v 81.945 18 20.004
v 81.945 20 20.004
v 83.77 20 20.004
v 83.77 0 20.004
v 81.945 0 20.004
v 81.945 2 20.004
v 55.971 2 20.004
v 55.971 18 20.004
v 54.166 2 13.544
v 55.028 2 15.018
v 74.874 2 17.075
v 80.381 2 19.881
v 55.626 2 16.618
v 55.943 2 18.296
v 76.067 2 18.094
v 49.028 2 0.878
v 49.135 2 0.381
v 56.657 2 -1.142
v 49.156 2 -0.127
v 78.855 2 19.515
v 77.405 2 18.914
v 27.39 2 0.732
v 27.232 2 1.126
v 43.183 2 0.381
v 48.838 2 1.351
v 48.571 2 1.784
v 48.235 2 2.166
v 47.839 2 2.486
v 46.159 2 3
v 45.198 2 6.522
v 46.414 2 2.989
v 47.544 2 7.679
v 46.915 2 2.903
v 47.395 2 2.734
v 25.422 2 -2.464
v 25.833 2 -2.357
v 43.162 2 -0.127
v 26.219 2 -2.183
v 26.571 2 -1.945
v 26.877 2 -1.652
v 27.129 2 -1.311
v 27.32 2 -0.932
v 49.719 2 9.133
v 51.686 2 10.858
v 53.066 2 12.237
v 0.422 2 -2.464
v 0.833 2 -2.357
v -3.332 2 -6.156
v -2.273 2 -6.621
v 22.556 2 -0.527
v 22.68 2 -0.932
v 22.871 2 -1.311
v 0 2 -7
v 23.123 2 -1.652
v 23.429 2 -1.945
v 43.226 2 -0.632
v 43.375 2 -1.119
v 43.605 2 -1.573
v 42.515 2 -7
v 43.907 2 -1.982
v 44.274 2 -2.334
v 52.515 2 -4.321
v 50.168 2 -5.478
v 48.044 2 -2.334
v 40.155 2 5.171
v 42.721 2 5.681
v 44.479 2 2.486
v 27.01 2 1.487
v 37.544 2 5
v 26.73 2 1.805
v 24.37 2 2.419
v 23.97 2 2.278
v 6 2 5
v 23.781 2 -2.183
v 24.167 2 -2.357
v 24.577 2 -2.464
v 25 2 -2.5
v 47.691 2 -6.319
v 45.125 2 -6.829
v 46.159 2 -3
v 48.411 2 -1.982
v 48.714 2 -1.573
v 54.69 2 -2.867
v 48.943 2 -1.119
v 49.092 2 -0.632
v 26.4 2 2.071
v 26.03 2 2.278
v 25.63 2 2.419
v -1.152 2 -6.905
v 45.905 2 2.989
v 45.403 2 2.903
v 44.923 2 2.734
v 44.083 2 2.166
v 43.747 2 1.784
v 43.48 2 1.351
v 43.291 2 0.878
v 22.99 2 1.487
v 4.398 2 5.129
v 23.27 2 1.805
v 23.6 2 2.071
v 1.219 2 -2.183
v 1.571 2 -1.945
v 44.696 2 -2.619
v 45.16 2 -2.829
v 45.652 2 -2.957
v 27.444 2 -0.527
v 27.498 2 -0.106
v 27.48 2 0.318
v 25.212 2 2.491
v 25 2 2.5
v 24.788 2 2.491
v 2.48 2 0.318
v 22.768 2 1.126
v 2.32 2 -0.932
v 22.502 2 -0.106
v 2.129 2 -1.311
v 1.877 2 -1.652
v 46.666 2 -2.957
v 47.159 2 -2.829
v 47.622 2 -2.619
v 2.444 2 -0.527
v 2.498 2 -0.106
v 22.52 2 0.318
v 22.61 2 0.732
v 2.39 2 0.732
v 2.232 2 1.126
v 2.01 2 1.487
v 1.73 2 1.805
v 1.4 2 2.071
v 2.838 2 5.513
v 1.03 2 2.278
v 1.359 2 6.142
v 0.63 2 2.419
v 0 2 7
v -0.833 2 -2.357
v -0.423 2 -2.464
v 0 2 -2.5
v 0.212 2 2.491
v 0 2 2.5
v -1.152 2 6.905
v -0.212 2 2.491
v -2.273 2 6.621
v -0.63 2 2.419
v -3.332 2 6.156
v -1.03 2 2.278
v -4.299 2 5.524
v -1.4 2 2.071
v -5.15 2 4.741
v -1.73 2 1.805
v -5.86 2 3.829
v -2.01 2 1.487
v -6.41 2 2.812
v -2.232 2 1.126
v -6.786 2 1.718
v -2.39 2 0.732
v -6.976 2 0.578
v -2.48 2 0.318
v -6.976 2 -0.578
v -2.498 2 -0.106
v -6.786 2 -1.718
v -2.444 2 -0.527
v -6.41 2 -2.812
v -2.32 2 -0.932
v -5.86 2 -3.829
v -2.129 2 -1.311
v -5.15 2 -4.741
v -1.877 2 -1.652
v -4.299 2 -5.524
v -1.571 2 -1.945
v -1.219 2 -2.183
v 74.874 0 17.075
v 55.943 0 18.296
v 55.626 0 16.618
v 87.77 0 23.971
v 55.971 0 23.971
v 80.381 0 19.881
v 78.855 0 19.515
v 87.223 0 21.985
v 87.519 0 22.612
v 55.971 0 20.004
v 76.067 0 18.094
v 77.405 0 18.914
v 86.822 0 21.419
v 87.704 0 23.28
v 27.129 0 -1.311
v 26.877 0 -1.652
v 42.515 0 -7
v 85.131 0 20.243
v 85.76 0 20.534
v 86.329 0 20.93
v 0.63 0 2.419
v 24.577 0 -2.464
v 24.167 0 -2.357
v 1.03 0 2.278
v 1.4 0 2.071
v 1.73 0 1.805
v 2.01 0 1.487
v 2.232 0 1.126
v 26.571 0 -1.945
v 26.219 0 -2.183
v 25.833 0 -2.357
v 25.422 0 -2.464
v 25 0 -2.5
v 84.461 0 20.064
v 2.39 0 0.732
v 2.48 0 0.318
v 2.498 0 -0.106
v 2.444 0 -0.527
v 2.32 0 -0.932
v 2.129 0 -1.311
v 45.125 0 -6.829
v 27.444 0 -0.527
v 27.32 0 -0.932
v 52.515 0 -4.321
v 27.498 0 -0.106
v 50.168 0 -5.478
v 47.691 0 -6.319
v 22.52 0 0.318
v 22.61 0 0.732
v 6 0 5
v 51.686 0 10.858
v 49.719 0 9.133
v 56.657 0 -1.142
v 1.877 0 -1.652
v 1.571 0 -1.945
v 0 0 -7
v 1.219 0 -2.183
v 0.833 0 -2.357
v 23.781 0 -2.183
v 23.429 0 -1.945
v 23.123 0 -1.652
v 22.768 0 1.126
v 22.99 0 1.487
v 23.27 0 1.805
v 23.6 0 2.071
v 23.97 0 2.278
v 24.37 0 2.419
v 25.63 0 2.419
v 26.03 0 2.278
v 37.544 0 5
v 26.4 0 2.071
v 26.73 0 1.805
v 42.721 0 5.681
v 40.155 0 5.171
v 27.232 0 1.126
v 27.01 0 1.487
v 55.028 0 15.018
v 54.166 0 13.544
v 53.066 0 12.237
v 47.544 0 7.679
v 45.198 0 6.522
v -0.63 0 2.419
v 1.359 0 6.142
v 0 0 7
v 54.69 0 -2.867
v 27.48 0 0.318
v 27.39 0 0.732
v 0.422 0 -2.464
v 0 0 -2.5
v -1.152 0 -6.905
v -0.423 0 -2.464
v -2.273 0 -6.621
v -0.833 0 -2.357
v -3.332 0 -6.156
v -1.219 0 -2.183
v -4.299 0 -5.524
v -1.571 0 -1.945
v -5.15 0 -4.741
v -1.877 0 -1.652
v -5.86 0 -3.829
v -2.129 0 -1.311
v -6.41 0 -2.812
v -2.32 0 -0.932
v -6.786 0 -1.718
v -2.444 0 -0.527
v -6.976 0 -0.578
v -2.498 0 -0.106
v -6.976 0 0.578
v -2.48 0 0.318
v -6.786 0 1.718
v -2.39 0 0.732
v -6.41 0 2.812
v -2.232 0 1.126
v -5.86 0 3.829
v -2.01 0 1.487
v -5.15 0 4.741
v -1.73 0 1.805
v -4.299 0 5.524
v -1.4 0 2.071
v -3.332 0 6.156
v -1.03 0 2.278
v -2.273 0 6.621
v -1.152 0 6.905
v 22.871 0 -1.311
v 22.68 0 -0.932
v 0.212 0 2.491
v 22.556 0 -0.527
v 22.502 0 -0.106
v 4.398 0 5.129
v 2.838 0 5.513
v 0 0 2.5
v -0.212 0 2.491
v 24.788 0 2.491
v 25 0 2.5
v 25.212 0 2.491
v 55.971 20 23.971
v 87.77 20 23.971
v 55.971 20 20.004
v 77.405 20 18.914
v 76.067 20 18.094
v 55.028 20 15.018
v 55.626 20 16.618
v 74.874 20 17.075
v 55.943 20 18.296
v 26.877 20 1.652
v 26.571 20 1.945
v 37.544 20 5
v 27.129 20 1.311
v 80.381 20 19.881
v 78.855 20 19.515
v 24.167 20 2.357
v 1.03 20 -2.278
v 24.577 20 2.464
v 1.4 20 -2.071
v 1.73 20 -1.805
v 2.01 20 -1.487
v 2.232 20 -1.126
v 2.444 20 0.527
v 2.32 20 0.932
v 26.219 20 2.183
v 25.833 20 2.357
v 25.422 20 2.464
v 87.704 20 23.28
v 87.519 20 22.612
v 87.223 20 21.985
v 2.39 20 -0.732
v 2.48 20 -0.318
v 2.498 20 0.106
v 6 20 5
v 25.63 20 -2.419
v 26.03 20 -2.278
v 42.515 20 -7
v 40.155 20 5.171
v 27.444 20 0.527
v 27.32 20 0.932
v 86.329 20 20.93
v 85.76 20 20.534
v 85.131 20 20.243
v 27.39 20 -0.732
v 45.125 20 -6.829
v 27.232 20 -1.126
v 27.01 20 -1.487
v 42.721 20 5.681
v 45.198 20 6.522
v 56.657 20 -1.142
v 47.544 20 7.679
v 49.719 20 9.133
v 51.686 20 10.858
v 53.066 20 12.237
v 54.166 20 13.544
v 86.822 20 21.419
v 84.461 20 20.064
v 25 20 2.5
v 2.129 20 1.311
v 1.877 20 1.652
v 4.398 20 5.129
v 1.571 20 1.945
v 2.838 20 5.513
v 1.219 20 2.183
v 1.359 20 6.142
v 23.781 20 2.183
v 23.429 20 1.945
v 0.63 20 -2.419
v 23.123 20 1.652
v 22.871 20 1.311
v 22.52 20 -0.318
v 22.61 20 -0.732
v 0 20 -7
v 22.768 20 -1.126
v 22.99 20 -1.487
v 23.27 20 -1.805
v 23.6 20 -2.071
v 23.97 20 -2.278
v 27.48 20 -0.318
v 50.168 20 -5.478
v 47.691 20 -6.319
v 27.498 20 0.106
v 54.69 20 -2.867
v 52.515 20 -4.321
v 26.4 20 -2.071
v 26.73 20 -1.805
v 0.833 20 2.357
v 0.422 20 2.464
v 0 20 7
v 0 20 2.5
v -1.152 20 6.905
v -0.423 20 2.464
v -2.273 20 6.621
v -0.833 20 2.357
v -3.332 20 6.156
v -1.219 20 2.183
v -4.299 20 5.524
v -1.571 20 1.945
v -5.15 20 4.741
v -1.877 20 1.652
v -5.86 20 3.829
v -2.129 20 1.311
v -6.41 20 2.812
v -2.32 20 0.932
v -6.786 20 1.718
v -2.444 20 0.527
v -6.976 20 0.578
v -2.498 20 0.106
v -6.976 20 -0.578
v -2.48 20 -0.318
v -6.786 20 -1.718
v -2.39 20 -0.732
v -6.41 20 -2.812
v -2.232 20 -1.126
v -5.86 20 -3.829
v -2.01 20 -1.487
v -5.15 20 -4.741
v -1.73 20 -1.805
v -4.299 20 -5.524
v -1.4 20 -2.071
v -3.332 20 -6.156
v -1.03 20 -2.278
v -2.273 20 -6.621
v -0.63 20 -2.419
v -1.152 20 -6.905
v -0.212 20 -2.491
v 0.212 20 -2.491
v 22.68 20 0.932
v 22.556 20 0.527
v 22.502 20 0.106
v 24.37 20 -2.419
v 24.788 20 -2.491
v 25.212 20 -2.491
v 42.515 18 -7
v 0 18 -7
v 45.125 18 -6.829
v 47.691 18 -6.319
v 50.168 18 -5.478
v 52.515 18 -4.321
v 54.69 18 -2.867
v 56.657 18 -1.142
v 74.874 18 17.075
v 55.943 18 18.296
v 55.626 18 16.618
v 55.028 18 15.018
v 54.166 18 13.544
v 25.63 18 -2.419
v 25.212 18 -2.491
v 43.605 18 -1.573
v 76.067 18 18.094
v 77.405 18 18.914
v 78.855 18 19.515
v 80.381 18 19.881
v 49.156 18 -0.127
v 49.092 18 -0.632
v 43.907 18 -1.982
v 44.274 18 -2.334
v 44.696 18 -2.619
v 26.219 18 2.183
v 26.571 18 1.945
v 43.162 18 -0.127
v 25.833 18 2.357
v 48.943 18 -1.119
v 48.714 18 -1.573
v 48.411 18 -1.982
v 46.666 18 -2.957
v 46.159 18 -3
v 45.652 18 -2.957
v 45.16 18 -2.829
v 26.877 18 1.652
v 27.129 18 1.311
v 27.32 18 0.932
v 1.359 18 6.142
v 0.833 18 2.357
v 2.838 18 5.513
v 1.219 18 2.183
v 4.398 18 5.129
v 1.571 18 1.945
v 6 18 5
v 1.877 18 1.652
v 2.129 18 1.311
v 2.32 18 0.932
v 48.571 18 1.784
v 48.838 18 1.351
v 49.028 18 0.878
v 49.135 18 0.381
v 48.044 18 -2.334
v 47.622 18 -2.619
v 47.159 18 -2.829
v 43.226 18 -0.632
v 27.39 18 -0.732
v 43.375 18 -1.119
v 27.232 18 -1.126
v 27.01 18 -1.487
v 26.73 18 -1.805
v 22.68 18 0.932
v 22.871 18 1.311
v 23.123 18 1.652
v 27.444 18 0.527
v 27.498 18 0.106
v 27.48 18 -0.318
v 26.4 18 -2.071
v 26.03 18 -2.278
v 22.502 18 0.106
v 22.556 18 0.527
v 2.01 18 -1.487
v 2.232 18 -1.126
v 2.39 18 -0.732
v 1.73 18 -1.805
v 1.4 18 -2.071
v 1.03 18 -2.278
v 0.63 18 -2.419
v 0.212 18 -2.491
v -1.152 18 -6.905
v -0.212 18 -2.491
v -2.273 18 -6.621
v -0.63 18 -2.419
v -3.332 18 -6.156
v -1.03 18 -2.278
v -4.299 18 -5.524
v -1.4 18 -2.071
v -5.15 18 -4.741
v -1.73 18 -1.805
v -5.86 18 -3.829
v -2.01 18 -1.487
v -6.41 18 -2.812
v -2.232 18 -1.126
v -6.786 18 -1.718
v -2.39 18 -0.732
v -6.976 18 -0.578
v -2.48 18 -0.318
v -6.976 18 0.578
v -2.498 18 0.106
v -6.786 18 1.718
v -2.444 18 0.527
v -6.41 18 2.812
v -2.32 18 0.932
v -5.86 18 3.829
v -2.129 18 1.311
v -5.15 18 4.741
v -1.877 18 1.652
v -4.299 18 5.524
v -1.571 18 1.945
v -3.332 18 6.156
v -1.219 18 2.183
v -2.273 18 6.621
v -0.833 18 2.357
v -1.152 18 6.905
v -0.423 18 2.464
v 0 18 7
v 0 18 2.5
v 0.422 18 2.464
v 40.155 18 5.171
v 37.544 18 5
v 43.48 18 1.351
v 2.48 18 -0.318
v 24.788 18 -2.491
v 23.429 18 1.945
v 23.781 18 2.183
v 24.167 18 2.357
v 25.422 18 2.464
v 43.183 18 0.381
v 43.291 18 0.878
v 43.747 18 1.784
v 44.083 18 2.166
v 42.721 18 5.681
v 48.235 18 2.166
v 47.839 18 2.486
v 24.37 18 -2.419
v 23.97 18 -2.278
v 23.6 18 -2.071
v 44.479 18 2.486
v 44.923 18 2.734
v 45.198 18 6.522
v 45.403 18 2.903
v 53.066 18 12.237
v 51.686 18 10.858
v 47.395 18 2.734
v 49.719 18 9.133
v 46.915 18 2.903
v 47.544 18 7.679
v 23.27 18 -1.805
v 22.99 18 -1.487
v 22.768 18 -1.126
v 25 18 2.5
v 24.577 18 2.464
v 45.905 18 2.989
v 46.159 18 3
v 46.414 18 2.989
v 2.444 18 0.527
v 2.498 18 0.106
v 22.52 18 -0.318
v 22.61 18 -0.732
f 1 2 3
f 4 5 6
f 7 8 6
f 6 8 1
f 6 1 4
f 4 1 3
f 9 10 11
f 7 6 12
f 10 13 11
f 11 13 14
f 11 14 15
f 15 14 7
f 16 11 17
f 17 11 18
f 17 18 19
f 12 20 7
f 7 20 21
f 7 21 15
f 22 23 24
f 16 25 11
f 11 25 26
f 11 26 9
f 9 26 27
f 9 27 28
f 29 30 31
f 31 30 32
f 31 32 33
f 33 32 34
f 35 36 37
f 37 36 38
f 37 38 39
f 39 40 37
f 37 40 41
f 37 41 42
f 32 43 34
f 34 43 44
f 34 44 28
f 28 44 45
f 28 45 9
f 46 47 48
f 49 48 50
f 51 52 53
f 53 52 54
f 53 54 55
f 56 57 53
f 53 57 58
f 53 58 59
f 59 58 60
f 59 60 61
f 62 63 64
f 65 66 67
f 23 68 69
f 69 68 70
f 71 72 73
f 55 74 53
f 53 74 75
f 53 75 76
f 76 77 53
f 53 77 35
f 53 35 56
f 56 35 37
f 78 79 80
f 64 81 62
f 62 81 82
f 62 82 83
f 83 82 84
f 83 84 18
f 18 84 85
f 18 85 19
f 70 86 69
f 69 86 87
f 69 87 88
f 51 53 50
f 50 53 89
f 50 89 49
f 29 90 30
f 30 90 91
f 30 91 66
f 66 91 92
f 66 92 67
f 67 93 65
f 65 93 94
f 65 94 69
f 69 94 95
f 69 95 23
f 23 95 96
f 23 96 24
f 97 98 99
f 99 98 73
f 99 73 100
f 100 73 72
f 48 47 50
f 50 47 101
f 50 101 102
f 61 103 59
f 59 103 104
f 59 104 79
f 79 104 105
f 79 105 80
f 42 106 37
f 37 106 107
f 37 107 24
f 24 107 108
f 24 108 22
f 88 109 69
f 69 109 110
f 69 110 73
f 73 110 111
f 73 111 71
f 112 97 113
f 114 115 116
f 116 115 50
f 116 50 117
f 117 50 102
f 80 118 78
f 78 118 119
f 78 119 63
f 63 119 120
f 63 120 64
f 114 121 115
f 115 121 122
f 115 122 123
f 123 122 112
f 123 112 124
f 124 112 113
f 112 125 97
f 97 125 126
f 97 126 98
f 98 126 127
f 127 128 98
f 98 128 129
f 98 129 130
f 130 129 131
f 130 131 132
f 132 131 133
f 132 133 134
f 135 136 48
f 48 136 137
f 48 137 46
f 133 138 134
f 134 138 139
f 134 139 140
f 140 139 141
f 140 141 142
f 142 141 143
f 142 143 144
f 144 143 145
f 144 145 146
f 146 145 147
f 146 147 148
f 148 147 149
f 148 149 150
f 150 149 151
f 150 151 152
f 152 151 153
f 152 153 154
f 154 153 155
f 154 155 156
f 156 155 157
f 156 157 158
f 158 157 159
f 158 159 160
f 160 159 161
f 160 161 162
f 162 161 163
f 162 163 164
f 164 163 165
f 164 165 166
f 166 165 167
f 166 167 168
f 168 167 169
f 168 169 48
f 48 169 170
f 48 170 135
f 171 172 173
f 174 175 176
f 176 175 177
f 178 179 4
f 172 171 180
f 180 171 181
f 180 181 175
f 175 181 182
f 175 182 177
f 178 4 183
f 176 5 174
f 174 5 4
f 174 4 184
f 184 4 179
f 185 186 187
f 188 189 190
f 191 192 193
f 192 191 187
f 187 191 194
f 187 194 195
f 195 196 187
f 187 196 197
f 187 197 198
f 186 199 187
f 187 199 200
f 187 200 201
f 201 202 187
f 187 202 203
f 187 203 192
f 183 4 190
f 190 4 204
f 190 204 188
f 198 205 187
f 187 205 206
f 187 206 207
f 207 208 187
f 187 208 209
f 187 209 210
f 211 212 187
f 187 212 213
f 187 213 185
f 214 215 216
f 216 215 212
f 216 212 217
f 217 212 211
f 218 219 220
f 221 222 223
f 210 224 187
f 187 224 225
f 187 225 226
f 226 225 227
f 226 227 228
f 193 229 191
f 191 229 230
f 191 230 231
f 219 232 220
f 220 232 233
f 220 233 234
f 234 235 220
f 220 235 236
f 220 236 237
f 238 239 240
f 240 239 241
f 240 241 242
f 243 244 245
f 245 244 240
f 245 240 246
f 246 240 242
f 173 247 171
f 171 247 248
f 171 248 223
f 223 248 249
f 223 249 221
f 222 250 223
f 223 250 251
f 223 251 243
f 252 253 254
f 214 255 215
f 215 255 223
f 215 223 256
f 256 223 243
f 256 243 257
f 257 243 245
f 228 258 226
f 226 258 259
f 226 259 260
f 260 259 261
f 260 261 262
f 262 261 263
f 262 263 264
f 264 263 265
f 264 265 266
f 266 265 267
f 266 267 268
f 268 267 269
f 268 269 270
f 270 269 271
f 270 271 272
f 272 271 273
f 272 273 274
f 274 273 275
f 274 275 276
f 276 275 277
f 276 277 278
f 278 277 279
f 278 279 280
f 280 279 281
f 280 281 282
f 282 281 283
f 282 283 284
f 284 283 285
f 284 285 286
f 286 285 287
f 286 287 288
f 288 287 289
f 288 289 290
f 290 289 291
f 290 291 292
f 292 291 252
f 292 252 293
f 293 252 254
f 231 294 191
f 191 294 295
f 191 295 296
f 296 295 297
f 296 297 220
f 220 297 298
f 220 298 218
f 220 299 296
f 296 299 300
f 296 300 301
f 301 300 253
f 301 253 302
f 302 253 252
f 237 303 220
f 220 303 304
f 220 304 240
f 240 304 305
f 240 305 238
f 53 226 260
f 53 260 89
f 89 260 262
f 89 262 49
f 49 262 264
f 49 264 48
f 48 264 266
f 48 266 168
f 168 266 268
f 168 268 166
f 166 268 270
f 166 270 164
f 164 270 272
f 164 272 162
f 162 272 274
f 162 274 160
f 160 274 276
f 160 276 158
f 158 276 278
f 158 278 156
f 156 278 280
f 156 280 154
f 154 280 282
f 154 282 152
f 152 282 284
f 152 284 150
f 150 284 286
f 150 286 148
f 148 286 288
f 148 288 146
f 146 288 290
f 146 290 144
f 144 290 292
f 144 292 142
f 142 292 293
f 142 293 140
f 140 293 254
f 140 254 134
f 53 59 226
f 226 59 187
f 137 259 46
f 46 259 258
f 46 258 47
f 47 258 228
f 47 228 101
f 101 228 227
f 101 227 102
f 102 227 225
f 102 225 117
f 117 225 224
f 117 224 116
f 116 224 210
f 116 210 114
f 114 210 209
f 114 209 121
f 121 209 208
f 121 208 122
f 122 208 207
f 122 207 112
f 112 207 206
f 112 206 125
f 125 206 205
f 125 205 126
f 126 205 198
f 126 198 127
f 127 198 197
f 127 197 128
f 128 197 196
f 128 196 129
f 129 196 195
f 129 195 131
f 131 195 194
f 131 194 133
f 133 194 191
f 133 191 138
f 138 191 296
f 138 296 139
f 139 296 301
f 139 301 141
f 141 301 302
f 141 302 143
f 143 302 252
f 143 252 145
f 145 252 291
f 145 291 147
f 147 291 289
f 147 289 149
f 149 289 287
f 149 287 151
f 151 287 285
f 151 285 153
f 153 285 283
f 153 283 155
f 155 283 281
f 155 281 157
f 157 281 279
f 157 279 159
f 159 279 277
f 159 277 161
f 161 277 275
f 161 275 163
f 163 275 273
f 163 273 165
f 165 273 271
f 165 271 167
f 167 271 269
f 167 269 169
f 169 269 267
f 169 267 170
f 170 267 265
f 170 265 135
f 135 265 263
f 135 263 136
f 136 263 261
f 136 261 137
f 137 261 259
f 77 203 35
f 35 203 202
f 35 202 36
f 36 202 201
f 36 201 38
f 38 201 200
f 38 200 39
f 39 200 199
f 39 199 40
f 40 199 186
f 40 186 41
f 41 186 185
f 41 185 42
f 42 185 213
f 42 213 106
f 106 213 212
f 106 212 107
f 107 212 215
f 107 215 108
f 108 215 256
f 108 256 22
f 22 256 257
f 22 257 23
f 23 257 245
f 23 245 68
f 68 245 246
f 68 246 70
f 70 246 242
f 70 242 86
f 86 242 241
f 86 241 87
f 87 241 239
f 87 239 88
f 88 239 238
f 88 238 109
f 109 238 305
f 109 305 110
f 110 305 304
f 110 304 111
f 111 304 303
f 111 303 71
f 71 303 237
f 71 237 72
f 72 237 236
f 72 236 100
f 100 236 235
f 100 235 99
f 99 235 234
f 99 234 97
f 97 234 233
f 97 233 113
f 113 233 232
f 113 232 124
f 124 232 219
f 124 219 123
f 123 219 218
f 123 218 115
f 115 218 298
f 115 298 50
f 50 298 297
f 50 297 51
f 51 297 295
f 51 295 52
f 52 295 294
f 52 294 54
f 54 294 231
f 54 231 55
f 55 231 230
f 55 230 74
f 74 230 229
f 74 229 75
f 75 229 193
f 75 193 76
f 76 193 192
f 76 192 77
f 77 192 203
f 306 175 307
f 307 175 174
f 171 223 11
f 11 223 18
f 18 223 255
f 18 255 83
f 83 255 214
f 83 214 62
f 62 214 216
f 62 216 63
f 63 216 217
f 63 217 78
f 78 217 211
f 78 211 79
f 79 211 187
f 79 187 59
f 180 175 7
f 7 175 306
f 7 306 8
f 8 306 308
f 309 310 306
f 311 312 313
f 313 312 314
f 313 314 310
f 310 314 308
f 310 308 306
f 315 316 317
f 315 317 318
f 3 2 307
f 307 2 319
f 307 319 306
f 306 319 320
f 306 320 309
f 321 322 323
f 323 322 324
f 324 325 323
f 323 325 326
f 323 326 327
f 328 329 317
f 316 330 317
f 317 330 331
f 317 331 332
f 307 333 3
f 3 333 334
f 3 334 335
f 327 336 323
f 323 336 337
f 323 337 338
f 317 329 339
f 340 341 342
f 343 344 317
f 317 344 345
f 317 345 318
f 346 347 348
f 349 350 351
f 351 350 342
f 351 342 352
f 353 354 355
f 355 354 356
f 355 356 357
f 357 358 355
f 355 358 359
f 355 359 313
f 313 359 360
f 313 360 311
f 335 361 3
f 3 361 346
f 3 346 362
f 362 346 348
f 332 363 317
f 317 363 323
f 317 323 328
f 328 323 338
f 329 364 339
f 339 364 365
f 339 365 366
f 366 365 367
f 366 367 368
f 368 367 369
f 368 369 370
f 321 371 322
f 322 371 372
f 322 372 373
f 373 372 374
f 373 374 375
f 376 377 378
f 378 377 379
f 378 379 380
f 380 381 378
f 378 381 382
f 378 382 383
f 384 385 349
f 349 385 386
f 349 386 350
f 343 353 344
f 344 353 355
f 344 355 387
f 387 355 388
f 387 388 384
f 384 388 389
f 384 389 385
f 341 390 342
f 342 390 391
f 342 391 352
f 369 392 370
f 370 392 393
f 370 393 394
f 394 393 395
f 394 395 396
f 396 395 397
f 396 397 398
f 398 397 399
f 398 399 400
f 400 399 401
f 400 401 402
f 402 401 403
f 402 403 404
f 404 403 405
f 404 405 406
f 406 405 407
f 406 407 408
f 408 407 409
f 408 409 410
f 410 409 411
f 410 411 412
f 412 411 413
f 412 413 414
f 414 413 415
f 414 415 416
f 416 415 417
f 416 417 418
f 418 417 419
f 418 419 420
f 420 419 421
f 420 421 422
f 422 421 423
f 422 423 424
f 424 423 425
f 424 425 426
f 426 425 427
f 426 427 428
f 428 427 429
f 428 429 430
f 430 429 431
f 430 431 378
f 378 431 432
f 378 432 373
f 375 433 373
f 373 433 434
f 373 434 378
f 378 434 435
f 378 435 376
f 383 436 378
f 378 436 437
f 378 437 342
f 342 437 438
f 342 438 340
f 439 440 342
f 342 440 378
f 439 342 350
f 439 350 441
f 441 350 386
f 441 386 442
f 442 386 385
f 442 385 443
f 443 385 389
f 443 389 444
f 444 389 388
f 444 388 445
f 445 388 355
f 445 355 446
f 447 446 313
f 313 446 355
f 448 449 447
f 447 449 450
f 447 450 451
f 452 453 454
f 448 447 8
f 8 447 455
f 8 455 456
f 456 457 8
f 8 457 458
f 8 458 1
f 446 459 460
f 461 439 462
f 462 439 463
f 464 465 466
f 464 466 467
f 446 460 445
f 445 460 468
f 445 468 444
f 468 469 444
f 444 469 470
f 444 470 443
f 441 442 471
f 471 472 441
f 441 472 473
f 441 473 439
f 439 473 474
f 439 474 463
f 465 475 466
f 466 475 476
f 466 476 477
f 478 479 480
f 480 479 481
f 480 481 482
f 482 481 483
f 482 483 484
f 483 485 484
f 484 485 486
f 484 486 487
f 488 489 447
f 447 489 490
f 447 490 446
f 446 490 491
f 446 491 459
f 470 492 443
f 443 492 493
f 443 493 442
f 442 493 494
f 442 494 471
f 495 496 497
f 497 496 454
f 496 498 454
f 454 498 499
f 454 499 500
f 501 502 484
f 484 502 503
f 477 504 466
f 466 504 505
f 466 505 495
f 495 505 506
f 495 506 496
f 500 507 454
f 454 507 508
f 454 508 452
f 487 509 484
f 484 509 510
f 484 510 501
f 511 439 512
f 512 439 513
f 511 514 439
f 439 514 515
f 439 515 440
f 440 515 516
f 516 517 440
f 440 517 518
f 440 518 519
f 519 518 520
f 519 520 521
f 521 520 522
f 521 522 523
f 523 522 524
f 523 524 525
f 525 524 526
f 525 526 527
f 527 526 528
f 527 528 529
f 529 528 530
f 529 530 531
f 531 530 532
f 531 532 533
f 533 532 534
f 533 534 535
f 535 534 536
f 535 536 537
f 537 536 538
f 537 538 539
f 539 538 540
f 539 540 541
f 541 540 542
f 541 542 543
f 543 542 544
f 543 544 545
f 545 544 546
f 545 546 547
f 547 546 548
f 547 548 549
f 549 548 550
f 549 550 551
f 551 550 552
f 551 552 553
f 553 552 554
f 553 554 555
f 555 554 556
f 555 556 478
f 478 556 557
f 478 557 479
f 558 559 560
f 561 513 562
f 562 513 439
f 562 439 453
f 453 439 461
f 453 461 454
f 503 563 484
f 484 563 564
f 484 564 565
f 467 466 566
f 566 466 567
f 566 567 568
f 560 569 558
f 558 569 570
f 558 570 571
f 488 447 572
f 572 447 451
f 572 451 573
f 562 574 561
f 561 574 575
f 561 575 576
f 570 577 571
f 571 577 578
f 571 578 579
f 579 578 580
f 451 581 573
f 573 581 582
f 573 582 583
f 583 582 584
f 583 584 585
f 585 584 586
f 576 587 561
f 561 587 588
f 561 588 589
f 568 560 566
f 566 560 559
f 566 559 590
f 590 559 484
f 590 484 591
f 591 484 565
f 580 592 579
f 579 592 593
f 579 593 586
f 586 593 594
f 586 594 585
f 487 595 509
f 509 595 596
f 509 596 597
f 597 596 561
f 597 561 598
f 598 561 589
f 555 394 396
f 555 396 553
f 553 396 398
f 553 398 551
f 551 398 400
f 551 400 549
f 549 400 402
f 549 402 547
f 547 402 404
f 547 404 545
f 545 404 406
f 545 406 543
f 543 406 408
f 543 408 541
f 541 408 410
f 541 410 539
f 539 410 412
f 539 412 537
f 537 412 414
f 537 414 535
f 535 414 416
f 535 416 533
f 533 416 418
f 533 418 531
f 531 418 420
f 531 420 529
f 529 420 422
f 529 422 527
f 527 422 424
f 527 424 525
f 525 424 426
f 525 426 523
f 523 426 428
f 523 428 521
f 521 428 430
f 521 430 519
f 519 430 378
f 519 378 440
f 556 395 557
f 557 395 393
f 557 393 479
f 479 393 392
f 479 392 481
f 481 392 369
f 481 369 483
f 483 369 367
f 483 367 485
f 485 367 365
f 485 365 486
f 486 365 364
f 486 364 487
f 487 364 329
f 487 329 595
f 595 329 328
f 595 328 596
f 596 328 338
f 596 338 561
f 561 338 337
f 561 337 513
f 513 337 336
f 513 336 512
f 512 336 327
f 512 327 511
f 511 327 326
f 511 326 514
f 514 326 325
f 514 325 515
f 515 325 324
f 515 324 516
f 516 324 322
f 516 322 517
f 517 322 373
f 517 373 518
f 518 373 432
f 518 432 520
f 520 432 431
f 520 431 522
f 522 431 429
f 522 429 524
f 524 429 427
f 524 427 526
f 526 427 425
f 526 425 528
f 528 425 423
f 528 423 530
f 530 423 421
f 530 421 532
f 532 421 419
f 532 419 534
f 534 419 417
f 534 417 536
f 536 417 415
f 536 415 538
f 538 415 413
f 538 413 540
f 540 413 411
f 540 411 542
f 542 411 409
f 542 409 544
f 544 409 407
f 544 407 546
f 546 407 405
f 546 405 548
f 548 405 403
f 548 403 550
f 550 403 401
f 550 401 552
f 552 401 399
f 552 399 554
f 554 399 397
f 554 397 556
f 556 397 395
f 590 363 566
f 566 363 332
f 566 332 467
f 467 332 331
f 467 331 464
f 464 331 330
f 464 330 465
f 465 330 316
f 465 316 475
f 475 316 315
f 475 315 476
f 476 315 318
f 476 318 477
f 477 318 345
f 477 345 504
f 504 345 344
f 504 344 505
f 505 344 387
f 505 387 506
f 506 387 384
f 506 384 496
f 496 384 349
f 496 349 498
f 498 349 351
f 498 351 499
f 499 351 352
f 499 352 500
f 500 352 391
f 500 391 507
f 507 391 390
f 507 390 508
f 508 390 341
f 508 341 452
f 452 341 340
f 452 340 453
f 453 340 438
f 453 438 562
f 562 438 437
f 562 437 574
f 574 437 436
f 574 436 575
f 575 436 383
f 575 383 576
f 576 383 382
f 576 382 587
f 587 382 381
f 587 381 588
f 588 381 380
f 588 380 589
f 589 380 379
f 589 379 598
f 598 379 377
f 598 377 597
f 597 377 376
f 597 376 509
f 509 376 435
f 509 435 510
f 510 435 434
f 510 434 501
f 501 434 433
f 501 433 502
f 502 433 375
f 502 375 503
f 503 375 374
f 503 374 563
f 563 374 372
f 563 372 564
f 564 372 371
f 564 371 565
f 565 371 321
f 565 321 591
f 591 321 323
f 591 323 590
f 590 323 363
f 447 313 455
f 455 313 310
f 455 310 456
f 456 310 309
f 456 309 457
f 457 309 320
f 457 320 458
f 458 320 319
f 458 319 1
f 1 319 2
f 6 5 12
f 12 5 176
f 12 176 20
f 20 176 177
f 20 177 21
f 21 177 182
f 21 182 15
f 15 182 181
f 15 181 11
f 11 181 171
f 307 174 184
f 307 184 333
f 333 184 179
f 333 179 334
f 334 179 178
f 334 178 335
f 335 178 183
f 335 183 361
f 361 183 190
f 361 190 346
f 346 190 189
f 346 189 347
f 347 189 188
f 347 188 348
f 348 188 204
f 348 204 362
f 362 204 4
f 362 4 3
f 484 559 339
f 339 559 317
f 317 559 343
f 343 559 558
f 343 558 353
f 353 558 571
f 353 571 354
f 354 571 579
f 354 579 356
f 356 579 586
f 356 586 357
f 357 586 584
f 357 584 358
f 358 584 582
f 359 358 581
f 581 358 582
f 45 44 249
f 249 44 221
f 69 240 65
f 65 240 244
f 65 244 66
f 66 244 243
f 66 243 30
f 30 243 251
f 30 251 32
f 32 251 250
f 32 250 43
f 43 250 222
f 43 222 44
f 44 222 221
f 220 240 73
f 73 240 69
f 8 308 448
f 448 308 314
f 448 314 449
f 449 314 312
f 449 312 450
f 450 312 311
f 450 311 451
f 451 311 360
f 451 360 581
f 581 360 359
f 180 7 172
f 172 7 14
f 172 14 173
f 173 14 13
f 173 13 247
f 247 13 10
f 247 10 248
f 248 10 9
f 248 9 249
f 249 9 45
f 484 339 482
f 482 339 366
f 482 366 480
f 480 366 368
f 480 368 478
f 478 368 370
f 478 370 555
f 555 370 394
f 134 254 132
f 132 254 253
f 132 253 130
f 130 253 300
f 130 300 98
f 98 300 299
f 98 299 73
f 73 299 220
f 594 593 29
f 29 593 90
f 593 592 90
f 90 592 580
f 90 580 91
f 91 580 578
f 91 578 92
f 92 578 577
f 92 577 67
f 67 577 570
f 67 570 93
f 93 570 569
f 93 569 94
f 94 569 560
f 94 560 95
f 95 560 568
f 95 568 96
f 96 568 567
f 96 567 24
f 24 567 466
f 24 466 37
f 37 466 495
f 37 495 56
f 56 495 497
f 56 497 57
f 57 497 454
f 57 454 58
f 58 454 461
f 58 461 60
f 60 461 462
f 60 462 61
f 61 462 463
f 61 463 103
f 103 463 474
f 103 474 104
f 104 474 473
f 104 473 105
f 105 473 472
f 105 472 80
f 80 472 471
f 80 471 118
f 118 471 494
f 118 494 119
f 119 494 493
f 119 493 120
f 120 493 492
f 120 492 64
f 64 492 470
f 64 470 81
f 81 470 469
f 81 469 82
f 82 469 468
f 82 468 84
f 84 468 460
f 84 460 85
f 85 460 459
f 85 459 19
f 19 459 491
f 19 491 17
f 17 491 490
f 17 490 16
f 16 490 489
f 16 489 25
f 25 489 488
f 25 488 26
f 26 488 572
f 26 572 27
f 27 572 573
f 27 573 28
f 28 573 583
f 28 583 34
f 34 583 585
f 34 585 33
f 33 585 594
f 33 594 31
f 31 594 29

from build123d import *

# Parameters (mm, degrees)
SKETCH1_R                = 2.5
BOSS_EXTRUDE1_DEPTH      = 2
BOSS_EXTRUDE2_DEPTH      = 2
BOSS_EXTRUDE3_DEPTH      = 18
BOSS_EXTRUDE3_DEPTH_BACK = 2
SKETCH4_W                = 31.798989874
SKETCH4_H                = 3.966560298
BOSS_EXTRUDE5_START      = -2
SKETCH6_R                = 2.5
BOSS_EXTRUDE5_DEPTH      = 2
FILLET1_R                = 10
FILLET2_R                = 10
FILLET4_R                = 4
CUT_EXTRUDE1_DEPTH       = 94.156093248
SKETCH9_W                = 6.238119779
SKETCH9_H                = 1.91760407
CUT_EXTRUDE2_DEPTH       = 94.156093248
FILLET5_R                = 10
FILLET6_R                = 10
BOSS_EXTRUDE6_REACH      = 94.747
SKETCH10_R               = 3


with BuildPart() as part:
    # Sketch1 → Boss-Extrude1 (new body)
    with BuildSketch(Plane(origin=(0, 0, 0), x_dir=(1, 0, 0), z_dir=(0, 1, 0))):
        with BuildLine():
            Line((0, 7), (25, 7))
            ThreePointArc((25, 7), (32, 0), (25, -7))
            Line((25, -7), (0, -7))
            ThreePointArc((0, -7), (-7, 0), (0, 7))
        make_face()
        with Locations(Location((0, 0, 0), (0, 0, 270))):
            Circle(SKETCH1_R, mode=Mode.SUBTRACT)
        with Locations(Location((25, 0, 0), (0, 0, 270))):
            Circle(SKETCH1_R, mode=Mode.SUBTRACT)
    extrude(amount=BOSS_EXTRUDE1_DEPTH)

    # Sketch3 → Boss-Extrude2 (add)
    with BuildSketch(Plane(origin=(0, 0, 0), x_dir=(-1, 0, 0), z_dir=(0, -1, 0))):
        with BuildLine():
            Line((-25, -7), (-36.715728753, -7))
            ThreePointArc((-36.715728753, -7), (-44.3693974, -8.52240935), (-50.857864376, -12.857864376))
            Line((-50.857864376, -12.857864376), (-61.970562748, -23.970562748))
            Line((-61.970562748, -23.970562748), (-81.769552622, -23.970562748))
            Line((-81.769552622, -23.970562748), (-71.870057685, -14.071067812))
            Line((-71.870057685, -14.071067812), (-56.656854249, 1.142135624))
            ThreePointArc((-56.656854249, 1.142135624), (-50.168387273, 5.47759065), (-42.514718626, 7))
            Line((-42.514718626, 7), (-25, 7))
            ThreePointArc((-25, 7), (-32, 0), (-25, -7))
        make_face()
    boss_extrude2 = extrude(amount=-BOSS_EXTRUDE2_DEPTH)

    # Sketch4 → Boss-Extrude3 (add, two sides: drawn at the far end of the back side and taken through both)
    with BuildSketch(Plane(origin=(0, 2, 0), x_dir=(1, 0, 0), z_dir=(0, 1, 0)).offset(-BOSS_EXTRUDE3_DEPTH_BACK)):
        with Locations((71.870057685, -21.987282599)):
            Rectangle(SKETCH4_W, SKETCH4_H)
    extrude(amount=BOSS_EXTRUDE3_DEPTH + BOSS_EXTRUDE3_DEPTH_BACK)

    # Mirror1: Boss-Extrude2 across plane
    add(boss_extrude2.mirror(Plane.ZX.offset(10)))

    # Sketch6 → Boss-Extrude5 (add)
    with BuildSketch(Plane(origin=(0, 20, 0), x_dir=(1, 0, 0), z_dir=(0, 1, 0)).offset(BOSS_EXTRUDE5_START)):
        with BuildLine():
            Line((25, -7), (0, -7))
            ThreePointArc((0, -7), (-7, 0), (0, 7))
            Line((0, 7), (25, 7))
            ThreePointArc((25, 7), (32, 0), (25, -7))
        make_face()
        with Locations(Location((0, 0, 0), (0, 0, 270))):
            Circle(SKETCH6_R, mode=Mode.SUBTRACT)
        with Locations(Location((25, 0, 0), (0, 0, 270))):
            Circle(SKETCH6_R, mode=Mode.SUBTRACT)
    extrude(amount=BOSS_EXTRUDE5_DEPTH)

    # Fillet1
    # the kernel refuses this fillet: 10 mm, written as the material it adds along each edge
    with BuildSketch(Plane(origin=(58.00400245, 0, 20.00400245), x_dir=(-1, 0, 0), z_dir=(0, 1, 0)), Plane(origin=(58.00400245, 18, 20.00400245), x_dir=(-1, 0, 0), z_dir=(0, 1, 0))) as fillet1_piece_1:
        with BuildLine():
            CenterArc((11.740850866, 2.401284758), FILLET1_R, 193.894123227, 31.105876773)
            Line((4.669783054, -4.669783054), (0, 0))
            Line((0, 0), (2.033439702, 0))
        make_face()
    extrude(amount=2)
    with BuildSketch(Plane(origin=(58.00400245, -16.510176322, 20.00400245), x_dir=(-1, 0, 0), z_dir=(0, 1, 0))) as fillet1_piece_2_section:
        with BuildLine():
            CenterArc((11.740850866, 2.401284758), FILLET1_R, 193.894123227, 31.105876773)
            Line((4.669783054, -4.669783054), (0, 0))
            Line((0, 0), (2.033439702, 0))
        make_face()
    fillet1_piece_2 = extrude(amount=35.020352644, mode=Mode.PRIVATE)
    fillet1_piece_2 = split(fillet1_piece_2, bisect_by=Plane(origin=(54.988670777, 18, 17.479262968), z_dir=(0, 1, 0)), keep=Keep.TOP, mode=Mode.PRIVATE)
    add(fillet1_piece_2)
    with BuildSketch(Plane(origin=(58.00400245, 1.489823678, 20.00400245), x_dir=(-1, 0, 0), z_dir=(0, 1, 0))) as fillet1_piece_3_section:
        with BuildLine():
            CenterArc((11.740850866, 2.401284758), FILLET1_R, 193.894123227, 31.105876773)
            Line((4.669783054, -4.669783054), (0, 0))
            Line((0, 0), (2.033439702, 0))
        make_face()
    fillet1_piece_3 = extrude(amount=35.020352644, mode=Mode.PRIVATE)
    fillet1_piece_3 = split(fillet1_piece_3, bisect_by=Plane(origin=(54.988670777, 2, 17.479262968), z_dir=(0, -1, 0)), keep=Keep.TOP, mode=Mode.PRIVATE)
    add(fillet1_piece_3)

    # Fillet2
    fillet2_edges = [part.edges().sort_by_distance(p)[0] for p in [
        (77.802992324, 1, 20.00400245),
        (77.802992324, 19, 20.00400245),
    ]]
    fillet(fillet2_edges, radius=FILLET2_R)

    # Fillet4
    # the kernel refuses this fillet: 4 mm, written as the material it takes off along each edge
    with BuildSketch(Plane(origin=(87.769552622, 30, 20.00400245), x_dir=(0, 0, 1), z_dir=(0, -1, 0))) as fillet4_piece_1:
        with BuildLine():
            CenterArc((FILLET4_R, FILLET4_R), FILLET4_R, 180, 90)
            Line((0, FILLET4_R), (0, 0))
            Line((0, 0), (FILLET4_R, 0))
        make_face()
    extrude(amount=40, mode=Mode.SUBTRACT)

    # Sketch8 → Cut-Extrude1 (cut, through all)
    with BuildSketch(Plane.XZ):
        with BuildLine():
            Line((0, 5), (25, 5))
            Line((25, 5), (37.544155877, 5))
            ThreePointArc((37.544155877, 5), (45.197824525, 6.52240935), (51.686291501, 10.857864376))
            Line((51.686291501, 10.857864376), (60.832429575, 20.00400245))
            Line((60.832429575, 20.00400245), (58.00400245, 20.00400245))
            Line((58.00400245, 20.00400245), (50.528510621, 12.697308088))
            ThreePointArc((50.528510621, 12.697308088), (44.096826604, 8.479014089), (36.548775141, 7))
            Line((36.548775141, 7), (0, 7))
            Line((0, 7), (0, 5))
        make_face()
    extrude(amount=-CUT_EXTRUDE1_DEPTH, mode=Mode.SUBTRACT)

    # Sketch9 → Cut-Extrude2 (cut, through all)
    with BuildSketch(Plane.XZ):
        with Locations((54.884942561, 19.045200415)):
            Rectangle(SKETCH9_W, SKETCH9_H)
    extrude(amount=-CUT_EXTRUDE2_DEPTH, mode=Mode.SUBTRACT)


with BuildPart() as body_2:
    # of the pieces the cut leaves, the one that is kept (cut_extrude2_keep)
    add(part.part.solids().sort_by_distance((74.874060135, 2, 17.075070262))[0])

    # Fillet5
    # the kernel refuses this fillet: 10 mm, written as the material it adds along each edge
    with BuildSketch(Plane(origin=(60.832429575, -9.459016288, 20.00400245), x_dir=(-0.7071067811865474, 0, -0.7071067811865478), z_dir=(0, 1, 0))) as fillet5_piece_1_section:
        with BuildLine():
            CenterArc((10.983606515, 10), FILLET5_R, 221.011773661, 48.988226339)
            Line((3.437859002, 3.437859002), (3.286944052, 3.306616182))
            ThreePointArc((3.286944052, 3.306616182), (1.577508145, 1.860350857), (-0.141421356, 0.141421356))
            Line((-0.141421356, 0.141421356), (0, -0.2))
            Line((0, -0.2), (10.983606515, -0.2))
            Line((10.983606515, -0.2), (10.983606515, 0))
        make_face()
    fillet5_piece_1 = extrude(amount=29.459016288, mode=Mode.PRIVATE)
    fillet5_piece_1 = split(fillet5_piece_1, bisect_by=Plane(origin=(55.139630426, 2, 14.853505851), z_dir=(0, -1, 0)), keep=Keep.TOP, mode=Mode.PRIVATE)
    fillet5_piece_1 = split(fillet5_piece_1, bisect_by=Plane(origin=(55.139630426, 0, 14.853505851), z_dir=(0, 1, 0)), keep=Keep.TOP, mode=Mode.PRIVATE)
    fillet5_piece_1 = split(fillet5_piece_1, bisect_by=Plane(origin=(55.970562748, 1, 14.853505851), z_dir=(-1, 0, 0)), keep=Keep.TOP, mode=Mode.PRIVATE)
    add(fillet5_piece_1)
    with BuildSketch(Plane(origin=(60.832429575, -9.459016288, 20.00400245), x_dir=(-0.7071067811865474, 0, -0.7071067811865478), z_dir=(0, 1, 0))) as fillet5_piece_2_section:
        with BuildLine():
            CenterArc((10.983606515, 10), FILLET5_R, 221.011773661, 48.988226339)
            Line((3.437859002, 3.437859002), (3.286944052, 3.306616182))
            ThreePointArc((3.286944052, 3.306616182), (1.577508145, 1.860350857), (-0.141421356, 0.141421356))
            Line((-0.141421356, 0.141421356), (0, -0.2))
            Line((0, -0.2), (10.983606515, -0.2))
            Line((10.983606515, -0.2), (10.983606515, 0))
        make_face()
    fillet5_piece_2 = extrude(amount=29.459016288, mode=Mode.PRIVATE)
    fillet5_piece_2 = split(fillet5_piece_2, bisect_by=Plane(origin=(57.757244396, 2, 18.390577646), z_dir=(0, -1, 0)), keep=Keep.TOP, mode=Mode.PRIVATE)
    fillet5_piece_2 = split(fillet5_piece_2, bisect_by=Plane(origin=(57.757244396, 0, 18.390577646), z_dir=(0, 1, 0)), keep=Keep.TOP, mode=Mode.PRIVATE)
    fillet5_piece_2 = split(fillet5_piece_2, bisect_by=Plane(origin=(55.970562748, 1, 18.390577646), z_dir=(1, 0, 0)), keep=Keep.TOP, mode=Mode.PRIVATE)
    add(fillet5_piece_2)
    with BuildSketch(Plane(origin=(60.832429575, 18, 20.00400245), x_dir=(-0.7071067811865472, 0, -0.7071067811865479), z_dir=(0, 1, 0))) as fillet5_piece_3_section:
        with BuildLine():
            CenterArc((10.983606515, 10), FILLET5_R, 221.011773661, 48.988226339)
            Line((3.437859002, 3.437859002), (3.286944052, 3.306616182))
            ThreePointArc((3.286944052, 3.306616182), (1.577508145, 1.860350857), (-0.141421356, 0.141421356))
            Line((-0.141421356, 0.141421356), (0, -0.2))
            Line((0, -0.2), (10.983606515, -0.2))
            Line((10.983606515, -0.2), (10.983606515, 0))
        make_face()
    fillet5_piece_3 = extrude(amount=2, mode=Mode.PRIVATE)
    fillet5_piece_3 = split(fillet5_piece_3, bisect_by=Plane(origin=(55.970562748, 19, 14.853505851), z_dir=(-1, 0, 0)), keep=Keep.TOP, mode=Mode.PRIVATE)
    add(fillet5_piece_3)
    with BuildSketch(Plane(origin=(60.832429575, 18, 20.00400245), x_dir=(-0.7071067811865472, 0, -0.7071067811865479), z_dir=(0, 1, 0))) as fillet5_piece_4_section:
        with BuildLine():
            CenterArc((10.983606515, 10), FILLET5_R, 221.011773661, 48.988226339)
            Line((3.437859002, 3.437859002), (3.286944052, 3.306616182))
            ThreePointArc((3.286944052, 3.306616182), (1.577508145, 1.860350857), (-0.141421356, 0.141421356))
            Line((-0.141421356, 0.141421356), (0, -0.2))
            Line((0, -0.2), (10.983606515, -0.2))
            Line((10.983606515, -0.2), (10.983606515, 0))
        make_face()
    fillet5_piece_4 = extrude(amount=2, mode=Mode.PRIVATE)
    fillet5_piece_4 = split(fillet5_piece_4, bisect_by=Plane(origin=(55.970562748, 19, 18.390577646), z_dir=(1, 0, 0)), keep=Keep.TOP, mode=Mode.PRIVATE)
    add(fillet5_piece_4)
    with BuildSketch(Plane(origin=(60.832429575, 0, 20.00400245), x_dir=(-1, 0, 0), z_dir=(0, 1, 0))) as fillet5_piece_5_section:
        with BuildLine():
            CenterArc((14.837650461, -0.695514837), FILLET5_R, 176.011773661, 48.988226339)
            Line((7.766582649, -7.766582649), (7.625161292, -7.908004005))
            Line((7.625161292, -7.908004005), (-0.141421356, -0.141421356))
            Line((-0.141421356, -0.141421356), (0, 0.2))
            ThreePointArc((0, 0.2), (2.430933413, 0.2), (4.662351154, 0.013910297))
            Line((4.662351154, 0.013910297), (4.861866827, 0))
        make_face()
    fillet5_piece_5 = extrude(amount=2, mode=Mode.PRIVATE)
    fillet5_piece_5 = split(fillet5_piece_5, bisect_by=Plane(origin=(55.970562748, 1, 18.390577646), z_dir=(1, 0, 0)), keep=Keep.TOP, mode=Mode.PRIVATE)
    add(fillet5_piece_5)
    with BuildSketch(Plane(origin=(60.832429575, 0, 20.00400245), x_dir=(-1, 0, 0), z_dir=(0, 1, 0))) as fillet5_piece_6_section:
        with BuildLine():
            CenterArc((14.837650461, -0.695514837), FILLET5_R, 176.011773661, 48.988226339)
            Line((7.766582649, -7.766582649), (7.625161292, -7.908004005))
            Line((7.625161292, -7.908004005), (-0.141421356, -0.141421356))
            Line((-0.141421356, -0.141421356), (0, 0.2))
            ThreePointArc((0, 0.2), (2.430933413, 0.2), (4.662351154, 0.013910297))
            Line((4.662351154, 0.013910297), (4.861866827, 0))
        make_face()
    fillet5_piece_6 = extrude(amount=2, mode=Mode.PRIVATE)
    fillet5_piece_6 = split(fillet5_piece_6, bisect_by=Plane(origin=(55.970562748, 1, 14.853505851), z_dir=(-1, 0, 0)), keep=Keep.TOP, mode=Mode.PRIVATE)
    add(fillet5_piece_6)
    with BuildSketch(Plane(origin=(60.832429575, 0, 20.00400245), x_dir=(-1, 0, 0), z_dir=(0, 1, 0))) as fillet5_piece_7_section:
        with BuildLine():
            CenterArc((14.837650461, -0.695514837), FILLET5_R, 176.011773661, 48.988226339)
            Line((7.766582649, -7.766582649), (7.625161292, -7.908004005))
            Line((7.625161292, -7.908004005), (-0.141421356, -0.141421356))
            Line((-0.141421356, -0.141421356), (0, 0.2))
            ThreePointArc((0, 0.2), (2.430933413, 0.2), (4.662351154, 0.013910297))
            Line((4.662351154, 0.013910297), (4.861866827, 0))
        make_face()
    fillet5_piece_7 = extrude(amount=29.459016288, mode=Mode.PRIVATE)
    fillet5_piece_7 = split(fillet5_piece_7, bisect_by=Plane(origin=(55.970562748, 19, 18.390577646), z_dir=(1, 0, 0)), keep=Keep.TOP, mode=Mode.PRIVATE)
    fillet5_piece_7 = split(fillet5_piece_7, bisect_by=Plane(origin=(57.757244396, 20, 18.390577646), z_dir=(0, -1, 0)), keep=Keep.TOP, mode=Mode.PRIVATE)
    fillet5_piece_7 = split(fillet5_piece_7, bisect_by=Plane(origin=(57.757244396, 18, 18.390577646), z_dir=(0, 1, 0)), keep=Keep.TOP, mode=Mode.PRIVATE)
    add(fillet5_piece_7)
    with BuildSketch(Plane(origin=(60.832429575, 0, 20.00400245), x_dir=(-1, 0, 0), z_dir=(0, 1, 0))) as fillet5_piece_8_section:
        with BuildLine():
            CenterArc((14.837650461, -0.695514837), FILLET5_R, 176.011773661, 48.988226339)
            Line((7.766582649, -7.766582649), (7.625161292, -7.908004005))
            Line((7.625161292, -7.908004005), (-0.141421356, -0.141421356))
            Line((-0.141421356, -0.141421356), (0, 0.2))
            ThreePointArc((0, 0.2), (2.430933413, 0.2), (4.662351154, 0.013910297))
            Line((4.662351154, 0.013910297), (4.861866827, 0))
        make_face()
    fillet5_piece_8 = extrude(amount=29.459016288, mode=Mode.PRIVATE)
    fillet5_piece_8 = split(fillet5_piece_8, bisect_by=Plane(origin=(55.970562748, 19, 14.853505851), z_dir=(-1, 0, 0)), keep=Keep.TOP, mode=Mode.PRIVATE)
    fillet5_piece_8 = split(fillet5_piece_8, bisect_by=Plane(origin=(55.139630426, 20, 14.853505851), z_dir=(0, -1, 0)), keep=Keep.TOP, mode=Mode.PRIVATE)
    fillet5_piece_8 = split(fillet5_piece_8, bisect_by=Plane(origin=(55.139630426, 18, 14.853505851), z_dir=(0, 1, 0)), keep=Keep.TOP, mode=Mode.PRIVATE)
    add(fillet5_piece_8)

    # Fillet6
    # the kernel refuses this fillet: 10 mm, written as the material it adds along each edge
    with BuildSketch(Plane(origin=(0, 18, 5), x_dir=(1, 0, 0), z_dir=(0, 1, 0))) as fillet6_piece_1:
        with BuildLine():
            CenterArc((6, -10), FILLET6_R, 90, 36.869897646)
            Line((0, -2), (-0.12, -1.84))
            ThreePointArc((-0.12, -1.84), (-0.2, -1), (-0.2, 0))
            Line((-0.2, 0), (0, 0.2))
            Line((0, 0.2), (6, 0.2))
            Line((6, 0.2), (6, 0))
        make_face()
    extrude(amount=2)
    with BuildSketch(Plane(origin=(0, 0, 5), x_dir=(0, 0, 1), z_dir=(0, 1, 0))) as fillet6_piece_2:
        with BuildLine():
            CenterArc((10, 6), FILLET6_R, 180, 36.869897646)
            Line((0, 6), (-0.2, 6))
            Line((-0.2, 6), (-0.2, 0))
            Line((-0.2, 0), (0, -0.2))
            ThreePointArc((0, -0.2), (1, -0.2), (1.84, -0.12))
            Line((1.84, -0.12), (2, 0))
        make_face()
    extrude(amount=2)

    # Sketch10 → Boss-Extrude6 (add, up to next)
    with BuildSketch(Plane(origin=(0, 2, 0), x_dir=(1, 0, 0), z_dir=(0, 1, 0)), mode=Mode.PRIVATE) as boss_extrude6_sk1:
        with Locations(Location((46.159136263, 0, 0), (0, 0, 270))):
            Circle(SKETCH10_R)
    boss_extrude6_tool1 = extrude(boss_extrude6_sk1.sketch, amount=BOSS_EXTRUDE6_REACH, mode=Mode.PRIVATE) - body_2.part
    add(boss_extrude6_tool1.solids().sort_by_distance((46.159136, 2, 0))[0])


solid = body_2.part
